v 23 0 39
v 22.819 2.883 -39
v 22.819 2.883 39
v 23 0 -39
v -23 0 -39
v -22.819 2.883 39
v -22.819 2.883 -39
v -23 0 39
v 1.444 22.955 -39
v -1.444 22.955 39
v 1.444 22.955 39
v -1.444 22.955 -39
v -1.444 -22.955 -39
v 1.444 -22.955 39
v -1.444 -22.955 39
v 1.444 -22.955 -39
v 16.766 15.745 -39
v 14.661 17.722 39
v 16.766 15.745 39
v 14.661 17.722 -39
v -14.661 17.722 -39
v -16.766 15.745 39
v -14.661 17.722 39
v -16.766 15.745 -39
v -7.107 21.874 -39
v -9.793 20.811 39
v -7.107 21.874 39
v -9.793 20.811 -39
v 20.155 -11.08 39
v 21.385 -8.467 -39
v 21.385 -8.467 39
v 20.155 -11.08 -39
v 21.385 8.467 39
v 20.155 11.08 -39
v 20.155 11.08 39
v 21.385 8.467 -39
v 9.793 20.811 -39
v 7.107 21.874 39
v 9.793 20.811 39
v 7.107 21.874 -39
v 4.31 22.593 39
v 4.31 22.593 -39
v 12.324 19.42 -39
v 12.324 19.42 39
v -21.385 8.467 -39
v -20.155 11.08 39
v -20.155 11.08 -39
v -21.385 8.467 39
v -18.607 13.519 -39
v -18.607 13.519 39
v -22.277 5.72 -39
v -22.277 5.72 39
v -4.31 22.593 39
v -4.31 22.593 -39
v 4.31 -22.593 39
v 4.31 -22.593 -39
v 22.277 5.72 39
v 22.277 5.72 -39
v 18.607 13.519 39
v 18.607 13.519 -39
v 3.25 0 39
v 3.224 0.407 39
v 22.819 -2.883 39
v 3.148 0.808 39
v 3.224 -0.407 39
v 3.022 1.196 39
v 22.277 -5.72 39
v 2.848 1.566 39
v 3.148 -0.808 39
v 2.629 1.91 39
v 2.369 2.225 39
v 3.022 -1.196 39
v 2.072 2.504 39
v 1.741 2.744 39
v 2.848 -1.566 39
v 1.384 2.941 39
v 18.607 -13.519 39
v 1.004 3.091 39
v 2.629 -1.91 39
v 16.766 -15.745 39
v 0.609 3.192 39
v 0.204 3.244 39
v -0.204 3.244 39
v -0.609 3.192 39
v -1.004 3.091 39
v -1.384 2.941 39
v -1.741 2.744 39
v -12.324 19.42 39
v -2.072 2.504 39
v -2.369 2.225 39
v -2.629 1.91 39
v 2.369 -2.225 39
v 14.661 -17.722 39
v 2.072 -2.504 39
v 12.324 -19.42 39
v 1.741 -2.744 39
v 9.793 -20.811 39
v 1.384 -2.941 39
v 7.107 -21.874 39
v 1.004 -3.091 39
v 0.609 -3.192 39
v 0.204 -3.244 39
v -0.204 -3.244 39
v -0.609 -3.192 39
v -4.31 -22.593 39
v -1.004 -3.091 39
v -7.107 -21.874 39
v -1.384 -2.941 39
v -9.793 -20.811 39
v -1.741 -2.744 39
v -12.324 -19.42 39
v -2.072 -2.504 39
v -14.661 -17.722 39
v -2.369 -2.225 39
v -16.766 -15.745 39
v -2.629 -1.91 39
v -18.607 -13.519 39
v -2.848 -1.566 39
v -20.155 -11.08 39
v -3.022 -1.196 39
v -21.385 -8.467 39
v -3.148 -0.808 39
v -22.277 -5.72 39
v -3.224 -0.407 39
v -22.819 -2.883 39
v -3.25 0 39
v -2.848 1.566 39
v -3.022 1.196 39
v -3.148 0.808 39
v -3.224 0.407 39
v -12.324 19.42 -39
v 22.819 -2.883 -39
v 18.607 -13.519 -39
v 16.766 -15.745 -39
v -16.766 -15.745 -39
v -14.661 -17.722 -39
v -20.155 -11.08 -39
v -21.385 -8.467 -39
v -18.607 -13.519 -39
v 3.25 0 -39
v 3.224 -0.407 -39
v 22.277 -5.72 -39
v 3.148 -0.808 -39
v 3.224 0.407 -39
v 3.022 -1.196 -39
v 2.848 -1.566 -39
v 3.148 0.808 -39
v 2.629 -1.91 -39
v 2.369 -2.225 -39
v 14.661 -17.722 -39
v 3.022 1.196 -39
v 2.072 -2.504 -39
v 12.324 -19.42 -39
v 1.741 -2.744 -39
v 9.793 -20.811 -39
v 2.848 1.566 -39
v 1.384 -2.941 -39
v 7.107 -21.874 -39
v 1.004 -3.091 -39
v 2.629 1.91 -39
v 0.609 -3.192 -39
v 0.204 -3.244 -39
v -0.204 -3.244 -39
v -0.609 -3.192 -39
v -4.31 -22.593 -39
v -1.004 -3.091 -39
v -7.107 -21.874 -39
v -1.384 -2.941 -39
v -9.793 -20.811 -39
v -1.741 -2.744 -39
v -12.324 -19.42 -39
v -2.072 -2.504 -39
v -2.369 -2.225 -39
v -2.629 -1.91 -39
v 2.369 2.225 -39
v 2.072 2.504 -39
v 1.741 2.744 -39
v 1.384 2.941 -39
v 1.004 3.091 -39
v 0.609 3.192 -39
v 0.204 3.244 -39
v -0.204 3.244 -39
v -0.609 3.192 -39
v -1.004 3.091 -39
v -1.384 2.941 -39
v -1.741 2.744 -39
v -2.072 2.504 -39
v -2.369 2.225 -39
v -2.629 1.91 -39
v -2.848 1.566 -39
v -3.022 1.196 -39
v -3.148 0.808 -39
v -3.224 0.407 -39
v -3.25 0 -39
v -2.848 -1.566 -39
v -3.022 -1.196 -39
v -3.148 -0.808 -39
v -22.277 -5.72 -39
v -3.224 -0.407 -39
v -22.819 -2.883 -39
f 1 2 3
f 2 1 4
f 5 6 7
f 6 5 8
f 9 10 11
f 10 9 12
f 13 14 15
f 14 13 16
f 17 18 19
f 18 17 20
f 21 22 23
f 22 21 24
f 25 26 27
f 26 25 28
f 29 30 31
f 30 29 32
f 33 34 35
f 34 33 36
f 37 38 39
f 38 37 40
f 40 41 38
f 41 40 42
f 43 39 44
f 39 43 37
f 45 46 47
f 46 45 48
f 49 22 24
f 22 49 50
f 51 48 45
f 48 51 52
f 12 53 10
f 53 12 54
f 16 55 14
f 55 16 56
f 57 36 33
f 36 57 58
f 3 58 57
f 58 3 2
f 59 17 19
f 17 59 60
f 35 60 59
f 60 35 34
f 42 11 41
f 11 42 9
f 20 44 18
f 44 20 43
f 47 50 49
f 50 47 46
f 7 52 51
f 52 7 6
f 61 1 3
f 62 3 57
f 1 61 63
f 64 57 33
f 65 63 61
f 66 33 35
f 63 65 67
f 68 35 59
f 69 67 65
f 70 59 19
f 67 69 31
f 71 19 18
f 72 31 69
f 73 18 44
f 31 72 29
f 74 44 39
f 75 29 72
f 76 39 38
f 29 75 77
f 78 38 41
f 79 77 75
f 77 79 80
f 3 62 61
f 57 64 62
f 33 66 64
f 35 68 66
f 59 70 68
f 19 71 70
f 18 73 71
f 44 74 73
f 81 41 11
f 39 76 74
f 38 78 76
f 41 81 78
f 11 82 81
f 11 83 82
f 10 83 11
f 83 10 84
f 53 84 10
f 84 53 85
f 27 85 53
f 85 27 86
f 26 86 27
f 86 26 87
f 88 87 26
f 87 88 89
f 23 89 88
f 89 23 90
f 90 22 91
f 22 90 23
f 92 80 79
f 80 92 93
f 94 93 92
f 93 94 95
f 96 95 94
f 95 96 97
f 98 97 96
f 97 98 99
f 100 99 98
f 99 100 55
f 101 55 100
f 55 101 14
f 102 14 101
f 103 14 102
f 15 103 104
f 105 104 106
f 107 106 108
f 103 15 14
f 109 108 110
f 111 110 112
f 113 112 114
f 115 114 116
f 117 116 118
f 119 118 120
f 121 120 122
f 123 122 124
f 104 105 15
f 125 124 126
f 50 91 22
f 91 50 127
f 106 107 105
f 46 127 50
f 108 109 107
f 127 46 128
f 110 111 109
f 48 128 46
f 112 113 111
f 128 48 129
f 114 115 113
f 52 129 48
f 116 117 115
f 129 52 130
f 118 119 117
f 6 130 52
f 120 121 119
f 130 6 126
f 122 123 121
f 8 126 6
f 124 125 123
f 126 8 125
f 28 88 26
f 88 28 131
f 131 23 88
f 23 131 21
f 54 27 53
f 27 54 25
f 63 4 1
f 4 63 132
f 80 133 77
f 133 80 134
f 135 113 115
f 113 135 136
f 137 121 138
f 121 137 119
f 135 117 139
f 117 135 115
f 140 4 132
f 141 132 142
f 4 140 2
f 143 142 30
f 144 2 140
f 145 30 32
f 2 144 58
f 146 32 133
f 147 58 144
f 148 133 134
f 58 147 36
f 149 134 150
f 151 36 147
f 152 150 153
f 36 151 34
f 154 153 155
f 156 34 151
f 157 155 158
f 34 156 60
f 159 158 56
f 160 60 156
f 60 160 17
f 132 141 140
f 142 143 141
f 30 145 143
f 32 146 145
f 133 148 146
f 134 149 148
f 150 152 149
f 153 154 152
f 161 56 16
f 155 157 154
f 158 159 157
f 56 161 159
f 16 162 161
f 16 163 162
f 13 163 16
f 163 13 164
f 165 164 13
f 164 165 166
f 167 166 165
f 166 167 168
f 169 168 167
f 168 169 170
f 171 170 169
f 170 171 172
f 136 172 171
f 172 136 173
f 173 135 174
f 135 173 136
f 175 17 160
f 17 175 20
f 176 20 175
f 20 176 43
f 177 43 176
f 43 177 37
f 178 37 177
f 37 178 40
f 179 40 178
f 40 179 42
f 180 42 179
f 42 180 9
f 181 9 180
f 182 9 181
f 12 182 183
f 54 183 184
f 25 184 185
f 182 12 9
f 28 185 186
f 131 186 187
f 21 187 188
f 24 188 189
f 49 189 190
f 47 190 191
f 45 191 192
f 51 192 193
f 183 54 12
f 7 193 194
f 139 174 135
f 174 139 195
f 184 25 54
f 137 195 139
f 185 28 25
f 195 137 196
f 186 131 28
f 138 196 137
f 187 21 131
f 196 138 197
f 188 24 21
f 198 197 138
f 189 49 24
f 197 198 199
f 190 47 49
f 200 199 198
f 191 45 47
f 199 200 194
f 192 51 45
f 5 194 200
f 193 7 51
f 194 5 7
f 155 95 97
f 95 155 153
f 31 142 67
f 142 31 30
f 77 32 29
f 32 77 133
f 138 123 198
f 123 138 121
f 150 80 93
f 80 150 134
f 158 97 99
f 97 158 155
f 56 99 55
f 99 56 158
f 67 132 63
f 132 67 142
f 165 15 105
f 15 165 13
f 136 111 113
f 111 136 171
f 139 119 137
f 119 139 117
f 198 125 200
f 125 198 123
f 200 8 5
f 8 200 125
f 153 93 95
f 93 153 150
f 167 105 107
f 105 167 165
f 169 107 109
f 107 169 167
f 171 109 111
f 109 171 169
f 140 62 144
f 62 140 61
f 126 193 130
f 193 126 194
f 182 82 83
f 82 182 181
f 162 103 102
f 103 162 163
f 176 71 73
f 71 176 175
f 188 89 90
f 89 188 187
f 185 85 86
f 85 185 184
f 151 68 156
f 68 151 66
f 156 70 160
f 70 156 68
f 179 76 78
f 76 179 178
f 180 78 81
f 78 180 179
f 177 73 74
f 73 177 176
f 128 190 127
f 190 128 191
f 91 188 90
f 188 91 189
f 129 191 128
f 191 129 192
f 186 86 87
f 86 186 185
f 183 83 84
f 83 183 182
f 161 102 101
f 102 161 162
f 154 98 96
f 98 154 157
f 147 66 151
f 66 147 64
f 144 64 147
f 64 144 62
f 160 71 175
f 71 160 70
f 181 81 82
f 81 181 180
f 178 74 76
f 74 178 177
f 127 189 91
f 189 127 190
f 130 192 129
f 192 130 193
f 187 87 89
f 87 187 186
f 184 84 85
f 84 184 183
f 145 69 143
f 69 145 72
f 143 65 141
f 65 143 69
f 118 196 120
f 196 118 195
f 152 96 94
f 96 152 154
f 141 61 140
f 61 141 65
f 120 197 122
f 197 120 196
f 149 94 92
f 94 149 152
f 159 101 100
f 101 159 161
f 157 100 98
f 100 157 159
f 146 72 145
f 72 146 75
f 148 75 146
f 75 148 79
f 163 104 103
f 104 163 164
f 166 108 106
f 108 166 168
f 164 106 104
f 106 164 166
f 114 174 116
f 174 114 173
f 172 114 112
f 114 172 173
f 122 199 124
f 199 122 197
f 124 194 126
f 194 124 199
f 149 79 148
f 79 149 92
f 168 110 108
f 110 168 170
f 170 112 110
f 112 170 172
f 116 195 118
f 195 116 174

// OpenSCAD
$fn = 50;


difference() {
	union() {
		translate(v = [0, 0, -39.0000000000]) {
			cylinder(h = 78, r = 23.0000000000);
		}
	}
	union() {
		translate(v = [0, 0, -100.0000000000]) {
			cylinder(h = 200, r = 3.2500000000);
		}
	}
}
